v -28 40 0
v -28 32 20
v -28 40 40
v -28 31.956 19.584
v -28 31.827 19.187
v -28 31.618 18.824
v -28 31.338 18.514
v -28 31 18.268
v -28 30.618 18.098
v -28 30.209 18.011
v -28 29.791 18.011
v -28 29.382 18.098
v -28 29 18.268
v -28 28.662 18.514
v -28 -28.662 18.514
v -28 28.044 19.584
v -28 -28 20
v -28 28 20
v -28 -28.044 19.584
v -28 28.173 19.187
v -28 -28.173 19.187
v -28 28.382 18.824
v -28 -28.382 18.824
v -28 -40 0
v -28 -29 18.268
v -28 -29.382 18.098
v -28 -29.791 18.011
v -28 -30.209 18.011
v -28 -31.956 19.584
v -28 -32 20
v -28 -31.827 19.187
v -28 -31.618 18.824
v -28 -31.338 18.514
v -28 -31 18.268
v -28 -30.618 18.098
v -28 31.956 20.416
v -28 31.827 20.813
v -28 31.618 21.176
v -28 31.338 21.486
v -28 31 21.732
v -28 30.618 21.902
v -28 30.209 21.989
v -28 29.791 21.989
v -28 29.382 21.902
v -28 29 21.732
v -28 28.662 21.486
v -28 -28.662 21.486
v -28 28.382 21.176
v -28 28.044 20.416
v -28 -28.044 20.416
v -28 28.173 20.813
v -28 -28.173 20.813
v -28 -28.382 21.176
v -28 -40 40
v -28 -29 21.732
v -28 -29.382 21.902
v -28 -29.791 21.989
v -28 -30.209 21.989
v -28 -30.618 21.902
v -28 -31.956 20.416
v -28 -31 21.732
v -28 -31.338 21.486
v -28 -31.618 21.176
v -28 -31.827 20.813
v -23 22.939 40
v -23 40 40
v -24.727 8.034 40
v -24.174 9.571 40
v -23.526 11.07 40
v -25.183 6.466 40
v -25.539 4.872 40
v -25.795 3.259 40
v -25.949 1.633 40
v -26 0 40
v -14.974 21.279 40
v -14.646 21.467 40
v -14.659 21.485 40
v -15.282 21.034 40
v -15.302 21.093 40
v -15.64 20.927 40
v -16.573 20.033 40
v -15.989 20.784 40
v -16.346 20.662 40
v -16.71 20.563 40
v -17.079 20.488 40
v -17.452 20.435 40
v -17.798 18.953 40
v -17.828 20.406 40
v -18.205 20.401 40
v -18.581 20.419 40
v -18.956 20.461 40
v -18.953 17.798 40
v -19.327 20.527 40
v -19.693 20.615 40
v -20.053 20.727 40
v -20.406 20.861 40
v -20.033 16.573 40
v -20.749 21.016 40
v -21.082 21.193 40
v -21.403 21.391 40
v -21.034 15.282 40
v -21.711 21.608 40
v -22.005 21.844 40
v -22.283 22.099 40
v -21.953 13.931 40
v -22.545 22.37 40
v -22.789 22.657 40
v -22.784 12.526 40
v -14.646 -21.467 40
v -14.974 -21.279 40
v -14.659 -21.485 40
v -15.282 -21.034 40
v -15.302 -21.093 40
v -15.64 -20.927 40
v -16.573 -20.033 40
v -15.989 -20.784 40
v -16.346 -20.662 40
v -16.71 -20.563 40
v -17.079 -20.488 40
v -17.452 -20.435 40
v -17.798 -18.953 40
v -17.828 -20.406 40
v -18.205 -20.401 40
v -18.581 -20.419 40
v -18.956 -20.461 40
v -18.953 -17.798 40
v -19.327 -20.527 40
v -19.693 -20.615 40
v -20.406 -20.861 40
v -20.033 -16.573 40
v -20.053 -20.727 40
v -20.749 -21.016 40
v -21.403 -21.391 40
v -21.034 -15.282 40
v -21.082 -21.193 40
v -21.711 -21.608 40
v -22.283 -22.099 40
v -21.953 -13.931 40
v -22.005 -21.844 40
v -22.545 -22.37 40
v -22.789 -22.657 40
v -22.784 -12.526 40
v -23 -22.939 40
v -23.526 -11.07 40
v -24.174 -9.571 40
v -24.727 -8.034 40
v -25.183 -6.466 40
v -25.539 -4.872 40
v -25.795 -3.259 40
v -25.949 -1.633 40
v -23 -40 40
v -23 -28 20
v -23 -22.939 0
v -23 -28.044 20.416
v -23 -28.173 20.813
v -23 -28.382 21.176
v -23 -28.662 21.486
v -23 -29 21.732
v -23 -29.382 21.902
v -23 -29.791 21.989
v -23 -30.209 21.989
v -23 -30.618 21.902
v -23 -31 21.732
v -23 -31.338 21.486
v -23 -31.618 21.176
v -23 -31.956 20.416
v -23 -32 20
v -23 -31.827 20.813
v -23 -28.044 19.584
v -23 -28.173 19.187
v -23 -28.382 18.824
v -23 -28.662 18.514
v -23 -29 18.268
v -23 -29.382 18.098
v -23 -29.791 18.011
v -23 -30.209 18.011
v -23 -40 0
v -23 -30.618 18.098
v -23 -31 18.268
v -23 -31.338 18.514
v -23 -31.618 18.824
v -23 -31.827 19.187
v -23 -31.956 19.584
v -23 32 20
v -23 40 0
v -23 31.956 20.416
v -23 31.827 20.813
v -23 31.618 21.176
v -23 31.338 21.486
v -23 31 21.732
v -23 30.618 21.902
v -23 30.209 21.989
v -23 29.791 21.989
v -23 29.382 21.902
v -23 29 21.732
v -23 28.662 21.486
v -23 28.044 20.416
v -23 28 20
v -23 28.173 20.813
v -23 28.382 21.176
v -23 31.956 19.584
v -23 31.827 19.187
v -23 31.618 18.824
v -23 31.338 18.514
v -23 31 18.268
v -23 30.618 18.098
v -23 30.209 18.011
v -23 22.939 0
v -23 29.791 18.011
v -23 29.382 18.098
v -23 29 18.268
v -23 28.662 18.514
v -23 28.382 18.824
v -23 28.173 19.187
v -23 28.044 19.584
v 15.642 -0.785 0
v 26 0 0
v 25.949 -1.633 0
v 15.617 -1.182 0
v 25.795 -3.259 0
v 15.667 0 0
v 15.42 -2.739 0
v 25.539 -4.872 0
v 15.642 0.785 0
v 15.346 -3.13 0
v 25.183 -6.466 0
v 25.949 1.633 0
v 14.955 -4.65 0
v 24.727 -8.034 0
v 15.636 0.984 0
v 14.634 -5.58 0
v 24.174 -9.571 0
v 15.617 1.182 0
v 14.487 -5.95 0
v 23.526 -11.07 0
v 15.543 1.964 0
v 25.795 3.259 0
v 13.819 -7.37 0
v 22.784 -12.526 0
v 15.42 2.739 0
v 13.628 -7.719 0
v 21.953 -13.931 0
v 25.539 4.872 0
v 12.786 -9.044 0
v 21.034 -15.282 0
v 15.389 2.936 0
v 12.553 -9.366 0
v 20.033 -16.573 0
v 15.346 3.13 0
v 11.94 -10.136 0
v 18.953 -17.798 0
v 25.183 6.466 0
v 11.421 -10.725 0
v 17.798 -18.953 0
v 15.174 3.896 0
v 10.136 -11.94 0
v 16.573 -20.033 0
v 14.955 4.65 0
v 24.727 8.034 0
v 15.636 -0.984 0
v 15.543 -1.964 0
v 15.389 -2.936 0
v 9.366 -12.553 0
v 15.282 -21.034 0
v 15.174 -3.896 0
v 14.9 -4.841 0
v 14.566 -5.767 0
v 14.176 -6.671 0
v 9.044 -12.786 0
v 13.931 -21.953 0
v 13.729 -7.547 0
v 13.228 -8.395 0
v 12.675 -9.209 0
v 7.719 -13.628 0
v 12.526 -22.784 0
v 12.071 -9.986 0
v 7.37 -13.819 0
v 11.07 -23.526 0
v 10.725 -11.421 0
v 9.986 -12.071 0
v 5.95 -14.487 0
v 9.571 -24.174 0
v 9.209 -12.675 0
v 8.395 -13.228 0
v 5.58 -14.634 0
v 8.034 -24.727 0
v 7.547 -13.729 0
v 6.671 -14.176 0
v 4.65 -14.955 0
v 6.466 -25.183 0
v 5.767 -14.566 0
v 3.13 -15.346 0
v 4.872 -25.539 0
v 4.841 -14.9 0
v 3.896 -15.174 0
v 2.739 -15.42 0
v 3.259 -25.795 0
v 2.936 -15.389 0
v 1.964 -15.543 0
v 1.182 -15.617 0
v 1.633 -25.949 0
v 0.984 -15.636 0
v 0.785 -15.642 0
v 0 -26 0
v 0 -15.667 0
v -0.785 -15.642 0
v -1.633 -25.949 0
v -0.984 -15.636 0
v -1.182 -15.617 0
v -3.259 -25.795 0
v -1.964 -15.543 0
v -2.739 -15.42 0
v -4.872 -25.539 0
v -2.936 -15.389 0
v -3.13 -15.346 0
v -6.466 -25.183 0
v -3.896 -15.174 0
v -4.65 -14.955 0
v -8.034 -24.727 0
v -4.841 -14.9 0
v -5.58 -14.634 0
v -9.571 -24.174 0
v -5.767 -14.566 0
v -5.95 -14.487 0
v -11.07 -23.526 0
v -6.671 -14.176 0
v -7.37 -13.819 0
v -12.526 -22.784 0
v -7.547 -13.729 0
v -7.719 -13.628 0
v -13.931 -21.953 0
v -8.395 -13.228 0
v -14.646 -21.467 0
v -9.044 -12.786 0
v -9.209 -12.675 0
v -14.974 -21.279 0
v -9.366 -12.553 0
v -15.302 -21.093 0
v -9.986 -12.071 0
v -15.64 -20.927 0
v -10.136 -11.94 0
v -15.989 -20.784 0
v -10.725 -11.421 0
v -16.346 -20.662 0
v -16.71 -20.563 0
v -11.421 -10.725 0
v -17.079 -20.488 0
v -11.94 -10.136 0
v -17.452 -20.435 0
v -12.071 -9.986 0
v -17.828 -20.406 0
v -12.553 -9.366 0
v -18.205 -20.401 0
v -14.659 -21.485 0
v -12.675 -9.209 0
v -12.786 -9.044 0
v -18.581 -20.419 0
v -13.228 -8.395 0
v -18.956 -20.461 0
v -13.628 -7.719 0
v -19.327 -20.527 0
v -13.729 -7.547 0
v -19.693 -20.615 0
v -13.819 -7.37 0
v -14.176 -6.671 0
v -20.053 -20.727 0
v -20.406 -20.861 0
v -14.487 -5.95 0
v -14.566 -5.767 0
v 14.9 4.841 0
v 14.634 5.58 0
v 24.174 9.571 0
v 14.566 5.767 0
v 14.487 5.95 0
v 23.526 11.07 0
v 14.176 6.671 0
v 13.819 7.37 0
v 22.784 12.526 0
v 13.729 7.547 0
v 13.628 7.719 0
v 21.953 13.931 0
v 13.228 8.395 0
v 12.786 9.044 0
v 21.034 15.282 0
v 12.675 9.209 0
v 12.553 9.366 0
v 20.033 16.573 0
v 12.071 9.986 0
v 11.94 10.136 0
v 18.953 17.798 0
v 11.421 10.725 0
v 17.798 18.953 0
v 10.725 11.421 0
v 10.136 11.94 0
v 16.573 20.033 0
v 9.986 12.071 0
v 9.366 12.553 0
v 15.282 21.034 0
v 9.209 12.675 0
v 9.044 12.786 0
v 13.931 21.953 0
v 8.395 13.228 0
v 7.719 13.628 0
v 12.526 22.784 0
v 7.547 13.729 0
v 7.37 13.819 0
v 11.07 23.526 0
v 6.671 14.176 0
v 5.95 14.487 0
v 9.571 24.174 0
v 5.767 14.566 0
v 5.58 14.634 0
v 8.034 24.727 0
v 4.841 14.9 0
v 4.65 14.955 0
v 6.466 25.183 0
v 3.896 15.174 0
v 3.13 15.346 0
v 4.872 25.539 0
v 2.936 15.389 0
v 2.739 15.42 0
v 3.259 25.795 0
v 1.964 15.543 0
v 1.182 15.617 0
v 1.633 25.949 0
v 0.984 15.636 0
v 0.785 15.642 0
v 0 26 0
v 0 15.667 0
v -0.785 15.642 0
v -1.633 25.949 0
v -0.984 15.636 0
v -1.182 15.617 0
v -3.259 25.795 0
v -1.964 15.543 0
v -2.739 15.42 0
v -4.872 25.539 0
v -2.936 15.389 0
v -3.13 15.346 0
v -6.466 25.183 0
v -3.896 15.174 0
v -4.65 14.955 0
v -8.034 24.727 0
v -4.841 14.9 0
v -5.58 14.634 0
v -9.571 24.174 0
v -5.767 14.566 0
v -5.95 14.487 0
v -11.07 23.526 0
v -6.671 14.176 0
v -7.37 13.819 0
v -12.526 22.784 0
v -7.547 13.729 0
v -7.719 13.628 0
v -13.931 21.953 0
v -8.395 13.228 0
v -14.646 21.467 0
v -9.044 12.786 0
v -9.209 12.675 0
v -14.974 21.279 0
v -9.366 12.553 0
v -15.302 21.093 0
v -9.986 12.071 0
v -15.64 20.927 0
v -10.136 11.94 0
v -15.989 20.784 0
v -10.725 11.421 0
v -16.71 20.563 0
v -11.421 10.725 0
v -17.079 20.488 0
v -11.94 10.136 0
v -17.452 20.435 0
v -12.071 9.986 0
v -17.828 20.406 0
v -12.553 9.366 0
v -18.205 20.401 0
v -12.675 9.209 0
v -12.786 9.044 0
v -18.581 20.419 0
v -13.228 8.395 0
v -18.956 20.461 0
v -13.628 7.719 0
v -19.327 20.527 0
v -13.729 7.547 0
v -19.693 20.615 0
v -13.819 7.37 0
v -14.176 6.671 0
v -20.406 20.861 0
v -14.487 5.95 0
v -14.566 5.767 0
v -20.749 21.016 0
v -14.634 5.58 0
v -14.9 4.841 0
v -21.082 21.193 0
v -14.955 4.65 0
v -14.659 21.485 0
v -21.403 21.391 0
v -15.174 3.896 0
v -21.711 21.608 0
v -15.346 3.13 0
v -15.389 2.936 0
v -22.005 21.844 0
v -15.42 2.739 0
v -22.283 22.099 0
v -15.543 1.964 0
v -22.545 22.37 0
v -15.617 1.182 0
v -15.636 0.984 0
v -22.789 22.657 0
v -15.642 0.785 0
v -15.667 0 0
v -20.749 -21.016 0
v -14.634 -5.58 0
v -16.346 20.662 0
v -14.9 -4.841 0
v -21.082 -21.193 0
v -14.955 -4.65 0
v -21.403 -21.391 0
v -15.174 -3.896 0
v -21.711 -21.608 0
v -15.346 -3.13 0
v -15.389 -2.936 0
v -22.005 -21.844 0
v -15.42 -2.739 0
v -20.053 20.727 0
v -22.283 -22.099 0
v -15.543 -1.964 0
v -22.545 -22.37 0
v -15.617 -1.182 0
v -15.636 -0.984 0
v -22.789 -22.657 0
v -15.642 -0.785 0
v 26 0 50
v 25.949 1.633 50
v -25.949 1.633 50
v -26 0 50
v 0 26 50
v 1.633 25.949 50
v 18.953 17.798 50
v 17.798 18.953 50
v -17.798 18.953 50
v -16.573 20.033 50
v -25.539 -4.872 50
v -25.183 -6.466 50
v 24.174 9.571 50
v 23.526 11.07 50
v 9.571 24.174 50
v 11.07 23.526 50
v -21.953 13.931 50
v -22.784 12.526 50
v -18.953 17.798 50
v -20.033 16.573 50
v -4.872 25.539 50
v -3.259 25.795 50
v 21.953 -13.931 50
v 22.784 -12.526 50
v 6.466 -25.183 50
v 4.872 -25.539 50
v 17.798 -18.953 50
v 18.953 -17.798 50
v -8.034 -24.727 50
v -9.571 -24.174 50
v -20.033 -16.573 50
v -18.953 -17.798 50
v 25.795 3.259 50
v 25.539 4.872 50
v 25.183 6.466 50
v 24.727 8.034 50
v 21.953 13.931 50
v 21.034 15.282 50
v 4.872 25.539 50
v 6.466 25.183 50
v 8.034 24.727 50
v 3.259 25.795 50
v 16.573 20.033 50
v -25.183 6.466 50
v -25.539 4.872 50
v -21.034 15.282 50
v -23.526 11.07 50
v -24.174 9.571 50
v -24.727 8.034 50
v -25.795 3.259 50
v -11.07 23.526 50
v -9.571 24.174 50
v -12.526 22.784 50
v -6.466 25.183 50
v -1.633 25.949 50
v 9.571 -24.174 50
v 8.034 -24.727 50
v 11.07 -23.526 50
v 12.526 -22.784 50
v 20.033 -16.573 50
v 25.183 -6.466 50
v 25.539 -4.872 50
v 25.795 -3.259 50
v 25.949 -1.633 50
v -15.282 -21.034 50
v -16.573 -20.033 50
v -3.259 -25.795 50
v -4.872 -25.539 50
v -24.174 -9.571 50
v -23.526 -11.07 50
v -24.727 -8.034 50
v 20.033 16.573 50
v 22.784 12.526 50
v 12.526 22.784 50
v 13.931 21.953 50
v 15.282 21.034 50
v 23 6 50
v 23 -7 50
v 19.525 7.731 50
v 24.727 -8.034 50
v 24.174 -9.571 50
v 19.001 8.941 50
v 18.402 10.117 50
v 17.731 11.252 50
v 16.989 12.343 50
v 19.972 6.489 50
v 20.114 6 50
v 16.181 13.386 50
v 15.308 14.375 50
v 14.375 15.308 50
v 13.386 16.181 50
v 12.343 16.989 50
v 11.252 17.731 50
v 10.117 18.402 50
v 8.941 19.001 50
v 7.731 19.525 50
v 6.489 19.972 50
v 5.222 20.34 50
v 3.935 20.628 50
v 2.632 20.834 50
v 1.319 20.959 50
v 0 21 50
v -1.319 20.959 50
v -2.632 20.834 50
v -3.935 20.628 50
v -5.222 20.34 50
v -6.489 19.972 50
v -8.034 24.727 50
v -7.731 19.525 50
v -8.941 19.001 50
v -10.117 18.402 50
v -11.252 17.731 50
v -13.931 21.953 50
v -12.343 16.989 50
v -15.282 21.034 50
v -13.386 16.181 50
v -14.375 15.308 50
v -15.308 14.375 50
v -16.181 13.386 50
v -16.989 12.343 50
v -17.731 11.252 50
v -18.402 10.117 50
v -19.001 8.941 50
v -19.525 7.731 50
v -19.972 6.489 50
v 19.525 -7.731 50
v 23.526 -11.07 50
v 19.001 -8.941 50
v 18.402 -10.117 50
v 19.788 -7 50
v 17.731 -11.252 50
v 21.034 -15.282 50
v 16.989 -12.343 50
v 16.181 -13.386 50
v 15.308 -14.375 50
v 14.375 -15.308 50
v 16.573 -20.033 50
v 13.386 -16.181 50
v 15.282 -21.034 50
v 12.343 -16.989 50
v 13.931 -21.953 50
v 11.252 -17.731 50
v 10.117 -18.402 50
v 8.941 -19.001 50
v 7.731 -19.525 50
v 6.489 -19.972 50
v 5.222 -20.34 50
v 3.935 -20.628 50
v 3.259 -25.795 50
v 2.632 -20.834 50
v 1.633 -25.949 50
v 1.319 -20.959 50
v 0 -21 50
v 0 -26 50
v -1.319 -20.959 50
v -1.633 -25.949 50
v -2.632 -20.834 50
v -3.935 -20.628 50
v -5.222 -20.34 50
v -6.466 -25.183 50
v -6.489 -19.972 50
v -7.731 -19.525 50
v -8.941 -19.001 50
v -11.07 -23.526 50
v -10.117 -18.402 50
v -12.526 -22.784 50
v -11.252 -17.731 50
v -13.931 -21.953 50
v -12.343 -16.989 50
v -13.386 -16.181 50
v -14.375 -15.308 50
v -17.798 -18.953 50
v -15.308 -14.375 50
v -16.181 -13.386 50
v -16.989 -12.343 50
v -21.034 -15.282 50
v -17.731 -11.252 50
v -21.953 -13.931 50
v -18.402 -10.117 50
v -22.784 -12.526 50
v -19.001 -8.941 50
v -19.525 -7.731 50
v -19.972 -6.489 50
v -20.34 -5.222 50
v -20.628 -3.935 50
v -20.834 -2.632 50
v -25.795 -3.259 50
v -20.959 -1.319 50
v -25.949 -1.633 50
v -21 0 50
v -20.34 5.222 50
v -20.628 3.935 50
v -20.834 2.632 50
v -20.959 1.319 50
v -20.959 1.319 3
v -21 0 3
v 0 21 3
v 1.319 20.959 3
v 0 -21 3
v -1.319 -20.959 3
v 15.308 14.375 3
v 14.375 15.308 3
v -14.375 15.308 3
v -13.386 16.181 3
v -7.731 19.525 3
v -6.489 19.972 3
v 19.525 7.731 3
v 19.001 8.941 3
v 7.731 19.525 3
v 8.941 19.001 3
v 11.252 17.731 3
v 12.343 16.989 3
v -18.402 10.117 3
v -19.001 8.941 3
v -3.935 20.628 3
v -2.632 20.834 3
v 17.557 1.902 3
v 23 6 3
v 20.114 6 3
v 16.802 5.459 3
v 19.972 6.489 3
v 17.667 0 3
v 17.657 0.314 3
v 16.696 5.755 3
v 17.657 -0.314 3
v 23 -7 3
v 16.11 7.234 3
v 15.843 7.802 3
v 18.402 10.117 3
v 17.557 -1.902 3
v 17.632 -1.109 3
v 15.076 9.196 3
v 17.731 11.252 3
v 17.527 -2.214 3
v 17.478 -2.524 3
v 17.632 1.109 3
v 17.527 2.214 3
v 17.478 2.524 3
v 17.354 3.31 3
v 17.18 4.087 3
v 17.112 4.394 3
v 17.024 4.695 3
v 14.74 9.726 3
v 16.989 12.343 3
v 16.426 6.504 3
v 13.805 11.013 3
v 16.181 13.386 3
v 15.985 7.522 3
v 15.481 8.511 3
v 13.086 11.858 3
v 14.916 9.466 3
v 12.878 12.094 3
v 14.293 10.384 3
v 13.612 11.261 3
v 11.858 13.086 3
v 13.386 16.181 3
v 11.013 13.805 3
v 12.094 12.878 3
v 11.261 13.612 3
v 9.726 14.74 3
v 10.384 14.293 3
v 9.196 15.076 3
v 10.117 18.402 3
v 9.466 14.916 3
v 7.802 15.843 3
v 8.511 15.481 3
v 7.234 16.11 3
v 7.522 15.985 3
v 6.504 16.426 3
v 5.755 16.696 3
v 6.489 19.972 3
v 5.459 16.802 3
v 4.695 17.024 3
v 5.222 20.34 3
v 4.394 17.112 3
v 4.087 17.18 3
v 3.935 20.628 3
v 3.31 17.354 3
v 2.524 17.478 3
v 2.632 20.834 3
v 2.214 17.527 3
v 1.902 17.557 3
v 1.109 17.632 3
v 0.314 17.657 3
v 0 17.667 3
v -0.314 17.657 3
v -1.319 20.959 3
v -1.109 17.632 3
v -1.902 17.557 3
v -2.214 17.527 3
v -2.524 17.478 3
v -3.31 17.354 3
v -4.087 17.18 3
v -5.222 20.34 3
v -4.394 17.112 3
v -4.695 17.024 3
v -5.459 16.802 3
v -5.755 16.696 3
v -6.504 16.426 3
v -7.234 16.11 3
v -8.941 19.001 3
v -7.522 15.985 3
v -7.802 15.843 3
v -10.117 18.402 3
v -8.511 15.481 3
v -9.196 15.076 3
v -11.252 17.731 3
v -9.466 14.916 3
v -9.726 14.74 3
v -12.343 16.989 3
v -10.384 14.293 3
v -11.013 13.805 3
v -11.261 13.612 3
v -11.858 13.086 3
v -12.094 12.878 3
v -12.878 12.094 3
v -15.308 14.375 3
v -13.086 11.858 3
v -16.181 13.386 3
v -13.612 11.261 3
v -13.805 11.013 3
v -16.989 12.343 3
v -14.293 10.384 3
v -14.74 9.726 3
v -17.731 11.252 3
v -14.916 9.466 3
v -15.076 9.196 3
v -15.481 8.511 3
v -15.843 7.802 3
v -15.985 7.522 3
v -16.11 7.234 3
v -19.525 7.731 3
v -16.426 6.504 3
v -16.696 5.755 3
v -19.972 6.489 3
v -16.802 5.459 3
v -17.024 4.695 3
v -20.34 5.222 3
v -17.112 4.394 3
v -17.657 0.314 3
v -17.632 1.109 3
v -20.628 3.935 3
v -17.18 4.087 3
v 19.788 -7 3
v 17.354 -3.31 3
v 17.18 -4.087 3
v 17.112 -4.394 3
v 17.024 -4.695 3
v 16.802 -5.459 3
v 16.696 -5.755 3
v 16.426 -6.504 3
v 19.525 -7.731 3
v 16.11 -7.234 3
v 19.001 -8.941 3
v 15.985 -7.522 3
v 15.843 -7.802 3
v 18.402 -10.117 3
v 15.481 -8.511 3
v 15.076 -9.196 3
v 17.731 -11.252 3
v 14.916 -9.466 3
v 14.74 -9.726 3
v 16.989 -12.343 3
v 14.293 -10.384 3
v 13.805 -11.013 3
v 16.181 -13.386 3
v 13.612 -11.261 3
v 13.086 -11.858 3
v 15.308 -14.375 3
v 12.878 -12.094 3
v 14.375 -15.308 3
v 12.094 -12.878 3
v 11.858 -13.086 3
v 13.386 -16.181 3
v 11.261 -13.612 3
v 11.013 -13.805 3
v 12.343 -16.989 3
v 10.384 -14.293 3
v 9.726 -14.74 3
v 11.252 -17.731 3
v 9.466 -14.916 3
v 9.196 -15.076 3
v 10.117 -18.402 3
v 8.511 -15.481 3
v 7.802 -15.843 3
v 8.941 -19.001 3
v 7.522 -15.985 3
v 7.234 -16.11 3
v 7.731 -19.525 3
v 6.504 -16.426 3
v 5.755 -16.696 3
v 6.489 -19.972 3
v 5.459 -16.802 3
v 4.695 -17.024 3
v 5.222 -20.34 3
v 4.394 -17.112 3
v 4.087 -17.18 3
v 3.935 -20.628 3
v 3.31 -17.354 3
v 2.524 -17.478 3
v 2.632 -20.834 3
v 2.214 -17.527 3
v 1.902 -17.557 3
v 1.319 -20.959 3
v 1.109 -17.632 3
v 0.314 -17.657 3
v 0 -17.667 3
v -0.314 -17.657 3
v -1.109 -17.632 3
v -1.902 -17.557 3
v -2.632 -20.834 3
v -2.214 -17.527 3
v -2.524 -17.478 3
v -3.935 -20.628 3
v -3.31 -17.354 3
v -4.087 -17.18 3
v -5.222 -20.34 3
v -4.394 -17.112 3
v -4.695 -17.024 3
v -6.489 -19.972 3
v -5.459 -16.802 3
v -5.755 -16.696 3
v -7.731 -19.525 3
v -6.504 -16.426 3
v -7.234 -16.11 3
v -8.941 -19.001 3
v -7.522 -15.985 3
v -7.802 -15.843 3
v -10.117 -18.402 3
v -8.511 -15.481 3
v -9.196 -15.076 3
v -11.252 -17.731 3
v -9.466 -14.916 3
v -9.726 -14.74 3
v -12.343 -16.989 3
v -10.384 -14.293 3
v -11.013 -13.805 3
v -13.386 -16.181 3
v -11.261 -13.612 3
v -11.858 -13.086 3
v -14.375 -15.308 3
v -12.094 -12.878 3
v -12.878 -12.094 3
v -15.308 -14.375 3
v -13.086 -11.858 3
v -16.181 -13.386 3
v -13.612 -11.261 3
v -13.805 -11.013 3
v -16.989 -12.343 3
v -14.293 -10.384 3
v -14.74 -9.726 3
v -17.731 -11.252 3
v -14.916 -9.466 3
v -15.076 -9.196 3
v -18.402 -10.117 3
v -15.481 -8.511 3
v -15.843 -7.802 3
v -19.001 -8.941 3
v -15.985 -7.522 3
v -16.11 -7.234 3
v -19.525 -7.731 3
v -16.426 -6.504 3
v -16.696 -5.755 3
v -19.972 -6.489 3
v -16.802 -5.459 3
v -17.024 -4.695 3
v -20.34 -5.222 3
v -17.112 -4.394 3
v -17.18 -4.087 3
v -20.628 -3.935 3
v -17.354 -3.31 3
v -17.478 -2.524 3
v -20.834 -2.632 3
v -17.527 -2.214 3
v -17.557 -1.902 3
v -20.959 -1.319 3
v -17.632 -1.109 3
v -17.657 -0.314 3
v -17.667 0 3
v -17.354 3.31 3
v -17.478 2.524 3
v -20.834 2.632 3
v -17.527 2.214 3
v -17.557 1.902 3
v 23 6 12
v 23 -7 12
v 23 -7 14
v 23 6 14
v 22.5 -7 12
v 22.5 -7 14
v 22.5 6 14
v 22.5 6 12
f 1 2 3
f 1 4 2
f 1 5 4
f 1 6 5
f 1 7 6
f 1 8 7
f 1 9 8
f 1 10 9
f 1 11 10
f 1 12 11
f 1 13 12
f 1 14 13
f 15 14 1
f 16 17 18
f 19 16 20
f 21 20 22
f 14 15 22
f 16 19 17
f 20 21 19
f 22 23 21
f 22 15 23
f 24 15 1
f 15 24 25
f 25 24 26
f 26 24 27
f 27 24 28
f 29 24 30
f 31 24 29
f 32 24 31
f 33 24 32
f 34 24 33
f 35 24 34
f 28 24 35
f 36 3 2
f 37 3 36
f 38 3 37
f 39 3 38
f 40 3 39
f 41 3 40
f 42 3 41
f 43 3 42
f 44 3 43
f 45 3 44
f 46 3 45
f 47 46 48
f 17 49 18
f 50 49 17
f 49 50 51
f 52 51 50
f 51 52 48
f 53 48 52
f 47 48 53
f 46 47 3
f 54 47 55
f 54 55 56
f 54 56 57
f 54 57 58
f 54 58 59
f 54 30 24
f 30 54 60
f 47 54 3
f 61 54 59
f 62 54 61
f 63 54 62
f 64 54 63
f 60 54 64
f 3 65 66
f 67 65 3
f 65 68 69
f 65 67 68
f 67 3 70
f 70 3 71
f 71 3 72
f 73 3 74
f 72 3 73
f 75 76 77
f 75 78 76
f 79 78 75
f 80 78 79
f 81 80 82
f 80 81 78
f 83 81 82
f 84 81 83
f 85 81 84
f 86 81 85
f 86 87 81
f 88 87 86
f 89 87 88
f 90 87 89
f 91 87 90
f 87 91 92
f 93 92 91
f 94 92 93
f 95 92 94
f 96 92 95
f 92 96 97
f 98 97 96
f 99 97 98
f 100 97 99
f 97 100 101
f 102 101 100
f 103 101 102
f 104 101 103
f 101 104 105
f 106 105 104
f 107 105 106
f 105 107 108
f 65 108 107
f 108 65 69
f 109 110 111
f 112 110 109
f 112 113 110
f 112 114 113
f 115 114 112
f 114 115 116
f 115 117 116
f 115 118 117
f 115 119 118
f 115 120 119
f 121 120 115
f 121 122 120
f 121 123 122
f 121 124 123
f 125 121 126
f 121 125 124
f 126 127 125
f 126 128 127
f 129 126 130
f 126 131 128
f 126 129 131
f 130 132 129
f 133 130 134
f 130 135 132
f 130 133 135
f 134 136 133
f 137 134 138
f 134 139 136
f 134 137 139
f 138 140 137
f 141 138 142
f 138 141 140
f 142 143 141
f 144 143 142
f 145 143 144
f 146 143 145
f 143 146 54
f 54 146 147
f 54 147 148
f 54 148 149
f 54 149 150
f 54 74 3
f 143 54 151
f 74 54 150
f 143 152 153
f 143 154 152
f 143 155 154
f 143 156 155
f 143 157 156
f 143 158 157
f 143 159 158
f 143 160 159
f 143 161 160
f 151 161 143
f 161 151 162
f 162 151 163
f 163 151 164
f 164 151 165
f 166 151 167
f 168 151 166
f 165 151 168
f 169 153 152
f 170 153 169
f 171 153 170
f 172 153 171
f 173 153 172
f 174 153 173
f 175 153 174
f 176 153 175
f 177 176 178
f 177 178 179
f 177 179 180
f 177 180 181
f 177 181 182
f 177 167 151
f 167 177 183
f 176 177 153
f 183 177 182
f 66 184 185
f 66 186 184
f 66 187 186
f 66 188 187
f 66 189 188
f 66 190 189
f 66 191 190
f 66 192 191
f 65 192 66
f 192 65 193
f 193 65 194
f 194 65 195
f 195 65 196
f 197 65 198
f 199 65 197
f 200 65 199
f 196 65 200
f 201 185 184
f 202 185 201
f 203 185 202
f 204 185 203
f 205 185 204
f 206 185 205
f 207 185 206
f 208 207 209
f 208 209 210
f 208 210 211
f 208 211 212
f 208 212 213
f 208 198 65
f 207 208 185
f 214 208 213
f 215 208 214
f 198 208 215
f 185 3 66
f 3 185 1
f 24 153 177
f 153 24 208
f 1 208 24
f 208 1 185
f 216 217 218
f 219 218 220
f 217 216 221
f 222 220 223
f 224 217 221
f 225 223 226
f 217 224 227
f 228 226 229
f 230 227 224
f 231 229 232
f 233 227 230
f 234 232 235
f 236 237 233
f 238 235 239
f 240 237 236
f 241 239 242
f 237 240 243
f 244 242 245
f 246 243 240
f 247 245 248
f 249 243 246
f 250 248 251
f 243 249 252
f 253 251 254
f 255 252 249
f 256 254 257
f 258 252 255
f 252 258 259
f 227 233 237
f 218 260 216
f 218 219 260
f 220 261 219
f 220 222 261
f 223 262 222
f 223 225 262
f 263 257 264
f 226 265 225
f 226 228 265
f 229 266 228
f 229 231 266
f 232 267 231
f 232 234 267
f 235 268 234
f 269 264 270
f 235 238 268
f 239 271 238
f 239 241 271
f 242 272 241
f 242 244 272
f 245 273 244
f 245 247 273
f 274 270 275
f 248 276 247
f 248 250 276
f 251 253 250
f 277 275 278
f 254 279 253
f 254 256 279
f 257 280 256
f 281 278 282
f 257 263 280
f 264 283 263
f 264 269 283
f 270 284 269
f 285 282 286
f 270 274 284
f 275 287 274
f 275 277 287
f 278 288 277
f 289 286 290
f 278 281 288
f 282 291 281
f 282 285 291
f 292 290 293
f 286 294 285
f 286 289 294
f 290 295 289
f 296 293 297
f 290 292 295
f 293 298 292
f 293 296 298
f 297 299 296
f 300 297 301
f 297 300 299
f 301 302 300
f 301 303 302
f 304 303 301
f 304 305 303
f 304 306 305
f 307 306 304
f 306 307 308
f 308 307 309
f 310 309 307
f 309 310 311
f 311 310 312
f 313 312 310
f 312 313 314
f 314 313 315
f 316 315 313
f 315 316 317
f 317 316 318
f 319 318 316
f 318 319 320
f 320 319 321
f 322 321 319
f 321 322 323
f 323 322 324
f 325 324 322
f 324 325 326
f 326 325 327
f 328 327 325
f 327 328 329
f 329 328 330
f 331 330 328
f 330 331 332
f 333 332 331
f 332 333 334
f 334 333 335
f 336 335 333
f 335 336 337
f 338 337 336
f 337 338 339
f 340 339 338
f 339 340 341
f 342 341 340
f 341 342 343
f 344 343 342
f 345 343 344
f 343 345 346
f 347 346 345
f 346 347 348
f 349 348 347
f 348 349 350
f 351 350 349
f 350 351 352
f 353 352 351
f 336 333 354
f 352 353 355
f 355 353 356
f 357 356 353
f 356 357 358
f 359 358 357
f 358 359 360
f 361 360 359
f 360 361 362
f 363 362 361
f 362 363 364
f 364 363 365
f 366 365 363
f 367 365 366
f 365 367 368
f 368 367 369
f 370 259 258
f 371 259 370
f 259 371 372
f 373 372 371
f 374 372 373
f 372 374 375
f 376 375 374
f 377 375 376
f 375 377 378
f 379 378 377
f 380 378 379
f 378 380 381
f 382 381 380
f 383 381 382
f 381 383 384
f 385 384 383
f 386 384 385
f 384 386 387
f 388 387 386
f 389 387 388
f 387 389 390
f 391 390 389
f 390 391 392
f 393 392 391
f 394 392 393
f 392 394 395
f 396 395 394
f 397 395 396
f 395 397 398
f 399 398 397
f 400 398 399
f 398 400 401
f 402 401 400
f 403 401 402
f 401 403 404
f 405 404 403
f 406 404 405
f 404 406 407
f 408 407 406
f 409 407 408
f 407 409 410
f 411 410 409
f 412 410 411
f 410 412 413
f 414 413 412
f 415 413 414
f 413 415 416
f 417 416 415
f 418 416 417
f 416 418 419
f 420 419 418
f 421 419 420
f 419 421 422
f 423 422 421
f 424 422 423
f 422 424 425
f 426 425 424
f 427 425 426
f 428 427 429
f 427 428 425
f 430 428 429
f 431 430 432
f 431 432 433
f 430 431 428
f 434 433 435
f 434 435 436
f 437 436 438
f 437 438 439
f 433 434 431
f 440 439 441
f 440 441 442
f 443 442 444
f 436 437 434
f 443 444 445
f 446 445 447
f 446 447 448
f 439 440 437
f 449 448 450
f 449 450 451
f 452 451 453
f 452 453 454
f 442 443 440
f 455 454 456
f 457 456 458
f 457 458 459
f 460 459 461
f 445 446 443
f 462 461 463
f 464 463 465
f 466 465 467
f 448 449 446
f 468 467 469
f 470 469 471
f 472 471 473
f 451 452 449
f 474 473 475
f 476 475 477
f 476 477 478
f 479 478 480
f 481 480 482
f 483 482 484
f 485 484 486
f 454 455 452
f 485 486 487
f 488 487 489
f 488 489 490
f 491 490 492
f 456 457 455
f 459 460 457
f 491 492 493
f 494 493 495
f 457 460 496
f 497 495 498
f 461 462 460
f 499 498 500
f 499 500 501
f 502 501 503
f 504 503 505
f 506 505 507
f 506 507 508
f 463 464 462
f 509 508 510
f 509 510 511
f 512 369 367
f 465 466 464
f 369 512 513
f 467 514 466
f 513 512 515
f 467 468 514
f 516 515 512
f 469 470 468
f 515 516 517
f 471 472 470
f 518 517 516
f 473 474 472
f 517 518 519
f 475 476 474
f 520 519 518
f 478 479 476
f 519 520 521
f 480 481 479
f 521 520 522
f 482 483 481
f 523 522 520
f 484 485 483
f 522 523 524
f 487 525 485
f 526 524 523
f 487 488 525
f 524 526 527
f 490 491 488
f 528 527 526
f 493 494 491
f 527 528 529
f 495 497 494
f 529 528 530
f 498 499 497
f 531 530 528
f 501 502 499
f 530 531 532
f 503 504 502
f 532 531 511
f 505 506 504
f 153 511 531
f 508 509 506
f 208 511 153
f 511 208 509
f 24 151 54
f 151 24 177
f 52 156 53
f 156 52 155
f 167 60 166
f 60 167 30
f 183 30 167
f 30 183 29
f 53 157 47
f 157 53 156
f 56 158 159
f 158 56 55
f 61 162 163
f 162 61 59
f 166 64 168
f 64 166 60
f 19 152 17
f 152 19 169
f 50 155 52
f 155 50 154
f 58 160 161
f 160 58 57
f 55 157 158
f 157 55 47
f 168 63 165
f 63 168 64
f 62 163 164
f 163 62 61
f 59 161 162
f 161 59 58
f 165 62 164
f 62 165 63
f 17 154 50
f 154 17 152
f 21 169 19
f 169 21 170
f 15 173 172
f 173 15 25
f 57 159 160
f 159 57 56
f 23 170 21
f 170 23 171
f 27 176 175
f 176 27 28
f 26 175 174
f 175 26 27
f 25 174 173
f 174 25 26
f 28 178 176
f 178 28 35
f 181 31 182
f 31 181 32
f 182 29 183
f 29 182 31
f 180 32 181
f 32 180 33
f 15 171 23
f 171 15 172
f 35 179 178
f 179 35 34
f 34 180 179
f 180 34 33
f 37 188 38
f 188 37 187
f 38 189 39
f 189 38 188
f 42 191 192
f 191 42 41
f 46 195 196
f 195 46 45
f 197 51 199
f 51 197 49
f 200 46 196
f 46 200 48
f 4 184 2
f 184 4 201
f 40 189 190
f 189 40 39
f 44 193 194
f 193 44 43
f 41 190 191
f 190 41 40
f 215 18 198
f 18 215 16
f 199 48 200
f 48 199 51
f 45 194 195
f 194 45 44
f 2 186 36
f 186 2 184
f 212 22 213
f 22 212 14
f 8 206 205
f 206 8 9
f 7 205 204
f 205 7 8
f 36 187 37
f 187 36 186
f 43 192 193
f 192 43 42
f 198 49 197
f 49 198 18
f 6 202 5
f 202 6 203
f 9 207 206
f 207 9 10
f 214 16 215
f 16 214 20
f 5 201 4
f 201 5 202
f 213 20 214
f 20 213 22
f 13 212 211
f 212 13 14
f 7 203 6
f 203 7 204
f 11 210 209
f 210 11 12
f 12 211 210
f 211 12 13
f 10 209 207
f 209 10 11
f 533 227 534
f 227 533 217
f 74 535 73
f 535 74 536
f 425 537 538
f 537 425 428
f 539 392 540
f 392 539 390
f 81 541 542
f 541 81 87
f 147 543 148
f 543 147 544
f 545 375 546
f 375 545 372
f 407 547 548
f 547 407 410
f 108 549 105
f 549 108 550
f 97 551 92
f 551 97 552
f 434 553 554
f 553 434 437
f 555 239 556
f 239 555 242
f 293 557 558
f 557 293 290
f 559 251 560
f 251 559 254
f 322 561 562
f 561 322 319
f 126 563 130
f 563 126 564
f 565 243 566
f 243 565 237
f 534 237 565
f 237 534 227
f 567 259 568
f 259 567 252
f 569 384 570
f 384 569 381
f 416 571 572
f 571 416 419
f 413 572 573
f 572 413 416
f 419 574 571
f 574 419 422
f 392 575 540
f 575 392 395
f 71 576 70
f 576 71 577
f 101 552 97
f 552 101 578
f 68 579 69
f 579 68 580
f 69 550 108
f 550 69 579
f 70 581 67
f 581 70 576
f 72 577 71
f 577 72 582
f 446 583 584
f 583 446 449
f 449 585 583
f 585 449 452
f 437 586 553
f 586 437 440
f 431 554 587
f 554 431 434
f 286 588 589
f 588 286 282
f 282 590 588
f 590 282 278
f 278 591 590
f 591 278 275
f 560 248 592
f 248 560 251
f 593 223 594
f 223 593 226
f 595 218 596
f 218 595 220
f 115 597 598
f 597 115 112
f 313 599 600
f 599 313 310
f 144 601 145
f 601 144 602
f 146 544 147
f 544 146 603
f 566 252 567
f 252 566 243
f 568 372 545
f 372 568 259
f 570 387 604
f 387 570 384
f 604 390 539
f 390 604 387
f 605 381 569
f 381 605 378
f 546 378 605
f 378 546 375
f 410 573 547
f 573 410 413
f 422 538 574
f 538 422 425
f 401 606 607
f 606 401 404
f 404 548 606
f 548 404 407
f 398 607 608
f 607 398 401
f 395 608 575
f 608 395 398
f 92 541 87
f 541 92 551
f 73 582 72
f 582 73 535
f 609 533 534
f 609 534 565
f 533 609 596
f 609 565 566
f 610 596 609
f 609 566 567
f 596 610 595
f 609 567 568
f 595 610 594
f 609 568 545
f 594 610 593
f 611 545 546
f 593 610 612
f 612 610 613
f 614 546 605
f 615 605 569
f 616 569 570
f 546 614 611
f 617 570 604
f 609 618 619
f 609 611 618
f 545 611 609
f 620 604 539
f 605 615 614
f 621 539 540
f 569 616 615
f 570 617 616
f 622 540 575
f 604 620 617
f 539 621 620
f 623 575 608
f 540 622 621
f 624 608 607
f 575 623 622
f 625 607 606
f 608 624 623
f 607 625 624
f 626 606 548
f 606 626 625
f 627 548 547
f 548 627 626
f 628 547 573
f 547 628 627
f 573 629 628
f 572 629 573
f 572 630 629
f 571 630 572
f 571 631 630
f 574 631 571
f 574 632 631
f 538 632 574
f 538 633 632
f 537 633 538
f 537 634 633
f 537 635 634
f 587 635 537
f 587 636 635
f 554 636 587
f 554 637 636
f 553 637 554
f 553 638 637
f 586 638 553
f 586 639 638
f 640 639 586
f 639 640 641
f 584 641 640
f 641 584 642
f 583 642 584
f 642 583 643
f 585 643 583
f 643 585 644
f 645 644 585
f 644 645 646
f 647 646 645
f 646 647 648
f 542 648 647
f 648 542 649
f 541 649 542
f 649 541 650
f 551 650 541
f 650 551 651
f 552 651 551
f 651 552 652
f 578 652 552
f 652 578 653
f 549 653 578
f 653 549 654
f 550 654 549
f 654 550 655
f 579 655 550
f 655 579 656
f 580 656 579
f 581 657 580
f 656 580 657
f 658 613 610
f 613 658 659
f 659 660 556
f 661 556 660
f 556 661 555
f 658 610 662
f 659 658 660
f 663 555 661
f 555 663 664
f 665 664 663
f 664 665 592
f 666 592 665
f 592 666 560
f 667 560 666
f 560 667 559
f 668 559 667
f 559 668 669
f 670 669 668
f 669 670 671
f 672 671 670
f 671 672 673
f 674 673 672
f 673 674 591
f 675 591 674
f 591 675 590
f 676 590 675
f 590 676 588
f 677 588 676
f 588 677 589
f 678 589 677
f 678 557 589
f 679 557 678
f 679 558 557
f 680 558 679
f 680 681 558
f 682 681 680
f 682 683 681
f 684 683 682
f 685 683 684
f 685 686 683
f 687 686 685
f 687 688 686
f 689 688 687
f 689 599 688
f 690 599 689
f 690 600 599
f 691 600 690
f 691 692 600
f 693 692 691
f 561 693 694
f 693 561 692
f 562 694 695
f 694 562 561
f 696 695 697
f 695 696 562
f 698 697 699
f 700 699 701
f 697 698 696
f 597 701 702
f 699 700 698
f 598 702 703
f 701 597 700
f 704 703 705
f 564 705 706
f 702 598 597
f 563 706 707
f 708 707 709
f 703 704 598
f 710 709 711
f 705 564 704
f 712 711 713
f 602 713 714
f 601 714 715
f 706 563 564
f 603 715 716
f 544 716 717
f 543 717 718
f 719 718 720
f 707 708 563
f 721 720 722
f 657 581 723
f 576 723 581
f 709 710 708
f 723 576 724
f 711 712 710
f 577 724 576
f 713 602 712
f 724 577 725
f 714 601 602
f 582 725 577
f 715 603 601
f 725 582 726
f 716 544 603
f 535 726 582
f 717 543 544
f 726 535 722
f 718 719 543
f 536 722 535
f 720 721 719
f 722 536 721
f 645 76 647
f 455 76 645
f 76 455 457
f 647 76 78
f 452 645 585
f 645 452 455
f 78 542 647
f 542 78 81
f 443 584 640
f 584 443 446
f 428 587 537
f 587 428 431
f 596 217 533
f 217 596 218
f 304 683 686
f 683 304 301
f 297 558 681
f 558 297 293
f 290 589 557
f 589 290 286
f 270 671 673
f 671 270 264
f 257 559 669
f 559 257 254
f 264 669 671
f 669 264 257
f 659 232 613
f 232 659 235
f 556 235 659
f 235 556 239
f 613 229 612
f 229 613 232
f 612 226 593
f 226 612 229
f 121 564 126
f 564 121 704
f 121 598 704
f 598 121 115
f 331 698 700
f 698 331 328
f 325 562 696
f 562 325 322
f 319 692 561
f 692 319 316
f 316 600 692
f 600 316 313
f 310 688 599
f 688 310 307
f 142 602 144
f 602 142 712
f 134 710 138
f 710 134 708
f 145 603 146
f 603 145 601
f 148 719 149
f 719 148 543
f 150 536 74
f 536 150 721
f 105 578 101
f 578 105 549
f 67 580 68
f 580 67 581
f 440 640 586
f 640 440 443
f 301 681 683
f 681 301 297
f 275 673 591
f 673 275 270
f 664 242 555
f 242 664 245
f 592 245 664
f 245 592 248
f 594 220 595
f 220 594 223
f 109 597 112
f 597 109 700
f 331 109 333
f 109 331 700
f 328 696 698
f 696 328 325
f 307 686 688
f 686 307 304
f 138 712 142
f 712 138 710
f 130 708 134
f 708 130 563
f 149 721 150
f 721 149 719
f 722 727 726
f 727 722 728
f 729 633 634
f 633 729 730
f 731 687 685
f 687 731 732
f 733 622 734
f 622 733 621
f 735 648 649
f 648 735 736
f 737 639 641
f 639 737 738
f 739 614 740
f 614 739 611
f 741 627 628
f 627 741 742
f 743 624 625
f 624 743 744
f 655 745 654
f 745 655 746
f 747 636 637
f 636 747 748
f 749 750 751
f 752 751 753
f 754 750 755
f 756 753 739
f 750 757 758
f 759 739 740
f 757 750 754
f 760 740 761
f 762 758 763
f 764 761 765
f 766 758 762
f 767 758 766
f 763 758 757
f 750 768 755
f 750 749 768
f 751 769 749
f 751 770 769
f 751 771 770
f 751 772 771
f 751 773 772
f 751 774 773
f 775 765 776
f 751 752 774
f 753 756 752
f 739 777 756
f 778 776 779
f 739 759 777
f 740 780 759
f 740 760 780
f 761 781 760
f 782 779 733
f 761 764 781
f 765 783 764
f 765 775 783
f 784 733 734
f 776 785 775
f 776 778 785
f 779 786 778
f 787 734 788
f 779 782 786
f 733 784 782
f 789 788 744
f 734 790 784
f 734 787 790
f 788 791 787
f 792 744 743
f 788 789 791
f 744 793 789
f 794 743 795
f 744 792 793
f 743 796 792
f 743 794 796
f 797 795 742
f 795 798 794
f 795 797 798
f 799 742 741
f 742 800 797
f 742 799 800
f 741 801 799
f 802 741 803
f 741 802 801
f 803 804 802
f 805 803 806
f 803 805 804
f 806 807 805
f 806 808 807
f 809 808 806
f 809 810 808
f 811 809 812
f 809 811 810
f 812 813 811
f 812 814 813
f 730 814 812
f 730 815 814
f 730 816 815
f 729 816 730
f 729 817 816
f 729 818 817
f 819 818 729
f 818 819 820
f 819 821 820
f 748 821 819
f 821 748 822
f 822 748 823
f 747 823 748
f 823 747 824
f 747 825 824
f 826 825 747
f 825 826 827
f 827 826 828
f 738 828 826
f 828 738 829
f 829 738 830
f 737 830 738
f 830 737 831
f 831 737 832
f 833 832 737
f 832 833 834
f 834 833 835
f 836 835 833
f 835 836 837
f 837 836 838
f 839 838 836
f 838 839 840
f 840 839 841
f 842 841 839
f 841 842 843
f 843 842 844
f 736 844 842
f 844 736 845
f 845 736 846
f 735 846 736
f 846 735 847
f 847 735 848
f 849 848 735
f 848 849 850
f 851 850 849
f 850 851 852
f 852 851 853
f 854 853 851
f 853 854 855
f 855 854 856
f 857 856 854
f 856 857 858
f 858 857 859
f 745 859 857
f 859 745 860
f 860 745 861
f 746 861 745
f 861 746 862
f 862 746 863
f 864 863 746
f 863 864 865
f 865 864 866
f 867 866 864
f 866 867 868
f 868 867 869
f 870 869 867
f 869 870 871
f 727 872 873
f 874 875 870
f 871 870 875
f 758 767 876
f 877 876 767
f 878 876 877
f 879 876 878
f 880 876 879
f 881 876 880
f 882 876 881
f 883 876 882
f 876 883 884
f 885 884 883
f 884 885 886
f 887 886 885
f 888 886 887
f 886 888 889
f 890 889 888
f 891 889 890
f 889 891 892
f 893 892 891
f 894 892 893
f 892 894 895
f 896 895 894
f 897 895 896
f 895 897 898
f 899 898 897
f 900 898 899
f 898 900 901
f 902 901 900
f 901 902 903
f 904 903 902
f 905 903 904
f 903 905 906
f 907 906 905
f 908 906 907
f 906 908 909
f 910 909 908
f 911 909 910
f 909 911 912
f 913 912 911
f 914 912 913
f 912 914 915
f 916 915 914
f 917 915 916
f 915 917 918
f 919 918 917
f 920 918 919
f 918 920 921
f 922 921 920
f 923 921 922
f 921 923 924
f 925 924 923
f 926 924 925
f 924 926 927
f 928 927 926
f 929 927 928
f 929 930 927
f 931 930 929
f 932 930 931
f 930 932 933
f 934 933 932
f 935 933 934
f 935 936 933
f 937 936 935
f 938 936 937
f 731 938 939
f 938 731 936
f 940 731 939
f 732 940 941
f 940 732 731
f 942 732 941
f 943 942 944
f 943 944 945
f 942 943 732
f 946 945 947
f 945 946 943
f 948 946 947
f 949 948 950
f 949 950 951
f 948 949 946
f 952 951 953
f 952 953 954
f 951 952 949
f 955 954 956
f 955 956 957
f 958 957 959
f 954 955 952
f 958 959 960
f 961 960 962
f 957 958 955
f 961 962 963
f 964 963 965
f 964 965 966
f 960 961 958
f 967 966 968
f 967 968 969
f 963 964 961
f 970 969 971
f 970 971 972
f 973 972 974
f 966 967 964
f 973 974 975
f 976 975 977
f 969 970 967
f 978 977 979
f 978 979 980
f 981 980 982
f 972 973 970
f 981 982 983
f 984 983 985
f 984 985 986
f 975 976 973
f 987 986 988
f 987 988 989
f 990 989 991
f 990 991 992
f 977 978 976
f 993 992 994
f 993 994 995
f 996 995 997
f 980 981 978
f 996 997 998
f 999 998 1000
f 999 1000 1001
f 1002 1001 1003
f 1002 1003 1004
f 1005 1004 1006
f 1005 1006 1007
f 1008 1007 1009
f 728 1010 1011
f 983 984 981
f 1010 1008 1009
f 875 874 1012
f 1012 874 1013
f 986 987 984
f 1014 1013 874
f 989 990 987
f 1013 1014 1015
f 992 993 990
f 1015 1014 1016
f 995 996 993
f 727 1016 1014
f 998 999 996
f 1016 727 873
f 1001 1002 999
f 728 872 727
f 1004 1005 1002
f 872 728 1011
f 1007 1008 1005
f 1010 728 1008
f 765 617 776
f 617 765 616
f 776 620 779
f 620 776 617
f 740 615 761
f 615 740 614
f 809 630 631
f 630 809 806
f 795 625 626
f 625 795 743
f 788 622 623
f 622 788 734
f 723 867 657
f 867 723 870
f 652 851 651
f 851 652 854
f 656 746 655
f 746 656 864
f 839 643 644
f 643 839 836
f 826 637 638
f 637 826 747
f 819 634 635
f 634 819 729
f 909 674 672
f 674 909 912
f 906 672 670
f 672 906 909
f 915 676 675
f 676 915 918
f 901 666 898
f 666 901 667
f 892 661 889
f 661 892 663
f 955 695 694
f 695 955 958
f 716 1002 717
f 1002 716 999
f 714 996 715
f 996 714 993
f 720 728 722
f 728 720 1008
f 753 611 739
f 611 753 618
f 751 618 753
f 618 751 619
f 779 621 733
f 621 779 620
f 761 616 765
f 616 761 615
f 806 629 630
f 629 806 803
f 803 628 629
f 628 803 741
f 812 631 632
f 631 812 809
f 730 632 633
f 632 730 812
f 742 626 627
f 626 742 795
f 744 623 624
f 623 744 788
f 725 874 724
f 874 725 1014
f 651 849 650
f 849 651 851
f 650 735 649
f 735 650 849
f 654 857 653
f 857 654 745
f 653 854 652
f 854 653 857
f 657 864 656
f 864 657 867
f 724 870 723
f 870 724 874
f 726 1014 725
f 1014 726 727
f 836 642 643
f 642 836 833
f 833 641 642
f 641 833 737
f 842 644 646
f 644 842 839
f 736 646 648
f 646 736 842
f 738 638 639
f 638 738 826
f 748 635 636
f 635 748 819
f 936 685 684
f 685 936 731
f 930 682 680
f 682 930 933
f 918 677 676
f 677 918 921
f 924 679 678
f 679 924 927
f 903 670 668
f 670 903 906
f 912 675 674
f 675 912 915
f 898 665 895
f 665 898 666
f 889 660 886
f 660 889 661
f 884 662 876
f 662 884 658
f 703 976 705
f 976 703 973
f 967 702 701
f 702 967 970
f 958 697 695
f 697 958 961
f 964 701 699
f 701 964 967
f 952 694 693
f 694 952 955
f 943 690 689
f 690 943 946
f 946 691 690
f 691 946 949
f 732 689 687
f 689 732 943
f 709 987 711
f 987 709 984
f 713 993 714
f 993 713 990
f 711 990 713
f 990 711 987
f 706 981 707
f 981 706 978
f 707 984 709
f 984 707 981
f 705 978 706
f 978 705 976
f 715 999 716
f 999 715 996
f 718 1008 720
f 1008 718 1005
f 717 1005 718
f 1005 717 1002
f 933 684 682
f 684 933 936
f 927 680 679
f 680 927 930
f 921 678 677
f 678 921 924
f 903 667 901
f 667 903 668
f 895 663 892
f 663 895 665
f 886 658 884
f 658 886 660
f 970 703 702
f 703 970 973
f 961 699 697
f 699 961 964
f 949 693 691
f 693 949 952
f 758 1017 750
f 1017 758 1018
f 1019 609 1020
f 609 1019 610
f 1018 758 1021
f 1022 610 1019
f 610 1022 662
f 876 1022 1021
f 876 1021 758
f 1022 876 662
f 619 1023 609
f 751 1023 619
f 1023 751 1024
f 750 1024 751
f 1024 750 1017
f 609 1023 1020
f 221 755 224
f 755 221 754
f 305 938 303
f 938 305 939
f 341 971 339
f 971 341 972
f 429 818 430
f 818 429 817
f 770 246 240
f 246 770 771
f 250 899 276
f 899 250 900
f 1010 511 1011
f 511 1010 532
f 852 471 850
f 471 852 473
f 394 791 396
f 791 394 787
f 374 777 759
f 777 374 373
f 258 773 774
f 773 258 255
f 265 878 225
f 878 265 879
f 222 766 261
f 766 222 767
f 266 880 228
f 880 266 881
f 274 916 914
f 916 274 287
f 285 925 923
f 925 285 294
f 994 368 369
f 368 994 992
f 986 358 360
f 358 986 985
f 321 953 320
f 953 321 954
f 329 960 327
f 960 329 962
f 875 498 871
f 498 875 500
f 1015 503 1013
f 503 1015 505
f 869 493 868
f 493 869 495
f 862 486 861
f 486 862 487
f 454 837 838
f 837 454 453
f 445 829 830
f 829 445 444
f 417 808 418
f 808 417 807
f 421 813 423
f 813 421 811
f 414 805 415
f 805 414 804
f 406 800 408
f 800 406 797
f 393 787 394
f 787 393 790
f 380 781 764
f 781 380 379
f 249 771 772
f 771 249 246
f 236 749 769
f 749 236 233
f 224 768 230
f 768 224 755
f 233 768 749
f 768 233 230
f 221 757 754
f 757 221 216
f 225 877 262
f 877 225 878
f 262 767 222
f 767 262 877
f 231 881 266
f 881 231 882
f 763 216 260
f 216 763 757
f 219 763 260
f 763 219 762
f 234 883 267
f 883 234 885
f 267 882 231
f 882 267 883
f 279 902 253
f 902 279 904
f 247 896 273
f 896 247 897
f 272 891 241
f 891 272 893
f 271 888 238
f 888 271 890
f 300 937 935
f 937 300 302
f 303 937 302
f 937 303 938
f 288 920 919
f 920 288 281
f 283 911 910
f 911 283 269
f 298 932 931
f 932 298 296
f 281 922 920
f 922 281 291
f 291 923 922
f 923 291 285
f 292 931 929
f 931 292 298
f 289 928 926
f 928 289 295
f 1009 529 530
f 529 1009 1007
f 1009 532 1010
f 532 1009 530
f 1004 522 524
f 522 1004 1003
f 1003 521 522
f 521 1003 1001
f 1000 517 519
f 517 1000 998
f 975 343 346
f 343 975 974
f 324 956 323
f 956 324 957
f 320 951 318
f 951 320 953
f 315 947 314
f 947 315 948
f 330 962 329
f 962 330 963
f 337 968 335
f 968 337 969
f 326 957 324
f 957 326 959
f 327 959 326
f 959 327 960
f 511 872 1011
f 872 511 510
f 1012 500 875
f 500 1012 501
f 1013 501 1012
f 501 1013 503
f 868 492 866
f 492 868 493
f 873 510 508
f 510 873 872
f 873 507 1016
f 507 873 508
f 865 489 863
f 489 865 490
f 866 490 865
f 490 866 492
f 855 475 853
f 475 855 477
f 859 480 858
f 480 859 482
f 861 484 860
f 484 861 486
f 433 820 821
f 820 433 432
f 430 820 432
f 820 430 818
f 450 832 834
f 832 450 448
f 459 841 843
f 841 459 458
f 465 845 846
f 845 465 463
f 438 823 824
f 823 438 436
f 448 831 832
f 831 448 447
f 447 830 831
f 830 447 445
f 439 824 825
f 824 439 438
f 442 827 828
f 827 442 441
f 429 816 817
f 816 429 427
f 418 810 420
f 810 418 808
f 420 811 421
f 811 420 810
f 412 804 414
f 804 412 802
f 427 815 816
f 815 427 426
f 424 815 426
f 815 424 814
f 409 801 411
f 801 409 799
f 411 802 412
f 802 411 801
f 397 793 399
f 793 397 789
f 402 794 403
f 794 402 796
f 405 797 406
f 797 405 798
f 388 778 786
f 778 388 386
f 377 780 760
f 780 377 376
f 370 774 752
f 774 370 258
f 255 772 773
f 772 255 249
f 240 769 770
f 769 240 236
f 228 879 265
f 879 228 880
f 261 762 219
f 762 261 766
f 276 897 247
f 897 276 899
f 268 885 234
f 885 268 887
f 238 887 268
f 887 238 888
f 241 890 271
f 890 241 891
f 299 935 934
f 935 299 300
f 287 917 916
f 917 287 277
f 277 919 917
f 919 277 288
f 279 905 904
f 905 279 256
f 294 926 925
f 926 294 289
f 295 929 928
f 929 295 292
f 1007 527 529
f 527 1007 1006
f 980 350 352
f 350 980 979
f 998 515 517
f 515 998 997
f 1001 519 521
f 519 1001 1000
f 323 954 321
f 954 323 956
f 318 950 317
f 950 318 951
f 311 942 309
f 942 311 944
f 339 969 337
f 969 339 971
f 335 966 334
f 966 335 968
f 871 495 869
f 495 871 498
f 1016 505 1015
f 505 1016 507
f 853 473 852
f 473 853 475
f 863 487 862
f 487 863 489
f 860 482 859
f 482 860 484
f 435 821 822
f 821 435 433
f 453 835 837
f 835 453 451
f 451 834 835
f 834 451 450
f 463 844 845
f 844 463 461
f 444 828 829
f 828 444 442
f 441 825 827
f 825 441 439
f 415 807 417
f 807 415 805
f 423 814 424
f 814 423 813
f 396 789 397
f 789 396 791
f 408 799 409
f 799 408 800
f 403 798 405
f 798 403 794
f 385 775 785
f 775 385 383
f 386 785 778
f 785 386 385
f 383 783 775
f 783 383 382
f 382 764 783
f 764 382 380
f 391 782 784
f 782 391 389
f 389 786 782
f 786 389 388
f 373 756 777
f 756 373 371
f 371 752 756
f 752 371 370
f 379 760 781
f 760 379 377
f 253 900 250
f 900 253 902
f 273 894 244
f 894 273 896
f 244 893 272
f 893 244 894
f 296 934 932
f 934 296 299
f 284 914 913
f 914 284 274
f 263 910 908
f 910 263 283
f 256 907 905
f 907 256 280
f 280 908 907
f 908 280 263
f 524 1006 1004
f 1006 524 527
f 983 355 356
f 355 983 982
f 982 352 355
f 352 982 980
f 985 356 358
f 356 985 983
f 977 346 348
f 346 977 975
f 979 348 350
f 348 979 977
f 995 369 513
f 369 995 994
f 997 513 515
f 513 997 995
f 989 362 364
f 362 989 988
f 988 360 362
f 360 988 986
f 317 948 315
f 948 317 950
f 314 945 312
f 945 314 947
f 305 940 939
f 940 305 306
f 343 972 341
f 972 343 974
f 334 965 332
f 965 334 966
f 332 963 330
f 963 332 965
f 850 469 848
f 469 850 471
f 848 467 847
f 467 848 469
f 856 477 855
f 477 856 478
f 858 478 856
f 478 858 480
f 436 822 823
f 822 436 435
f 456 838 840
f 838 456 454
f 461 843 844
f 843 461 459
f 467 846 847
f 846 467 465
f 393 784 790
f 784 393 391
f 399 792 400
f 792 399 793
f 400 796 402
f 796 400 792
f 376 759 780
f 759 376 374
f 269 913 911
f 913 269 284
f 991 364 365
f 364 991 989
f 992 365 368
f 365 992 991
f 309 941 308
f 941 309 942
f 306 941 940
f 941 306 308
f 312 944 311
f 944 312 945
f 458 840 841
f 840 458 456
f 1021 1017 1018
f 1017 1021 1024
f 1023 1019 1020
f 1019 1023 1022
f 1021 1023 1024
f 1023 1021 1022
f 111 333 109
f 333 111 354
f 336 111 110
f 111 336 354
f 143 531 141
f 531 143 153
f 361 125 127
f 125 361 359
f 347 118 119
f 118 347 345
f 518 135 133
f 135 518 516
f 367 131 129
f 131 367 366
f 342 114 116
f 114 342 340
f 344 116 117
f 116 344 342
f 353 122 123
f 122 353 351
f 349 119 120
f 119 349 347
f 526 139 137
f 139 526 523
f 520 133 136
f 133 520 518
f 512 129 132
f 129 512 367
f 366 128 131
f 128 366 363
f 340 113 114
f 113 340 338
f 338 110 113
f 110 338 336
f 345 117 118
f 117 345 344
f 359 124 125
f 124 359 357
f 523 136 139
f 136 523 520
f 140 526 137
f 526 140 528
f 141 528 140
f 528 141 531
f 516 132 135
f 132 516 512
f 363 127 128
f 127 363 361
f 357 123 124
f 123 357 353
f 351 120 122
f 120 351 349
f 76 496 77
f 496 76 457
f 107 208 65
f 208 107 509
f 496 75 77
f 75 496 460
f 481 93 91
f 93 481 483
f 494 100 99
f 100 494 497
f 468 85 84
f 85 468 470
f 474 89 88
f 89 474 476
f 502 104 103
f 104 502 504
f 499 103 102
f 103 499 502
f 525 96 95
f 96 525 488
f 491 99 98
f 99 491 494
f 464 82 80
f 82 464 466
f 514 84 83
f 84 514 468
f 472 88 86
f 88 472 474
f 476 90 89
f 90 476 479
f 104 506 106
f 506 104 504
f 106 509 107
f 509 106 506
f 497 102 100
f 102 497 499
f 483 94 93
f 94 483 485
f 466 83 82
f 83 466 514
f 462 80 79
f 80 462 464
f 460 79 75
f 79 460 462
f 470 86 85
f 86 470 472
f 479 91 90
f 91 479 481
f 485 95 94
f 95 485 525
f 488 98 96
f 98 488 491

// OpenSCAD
$fs = 0.01;

difference(){
difference(){
difference(){
    $fn = 100;
    cylinder(r = 26, h = 50);
    
    translate([0,0,3])
    cylinder(r = 21, h = 48);

    }
 
    translate([10,-7,3])
    cube([13,13,48]);

}
    $fn = 100;
        translate([0,0,-1])
cylinder(h = 6, r1 = 15, r2 = 19);
}

translate([0,0,12])
difference(){
        $fn = 100;
    cylinder(r = 25, h = 2);
    
    translate([0,0,-1])
    cylinder(r = 21, h = 10);
        
    
    translate([9.5,-7,-.5])
    cube([13,13,3]);
    
    
    }
    
    
   difference(){ 
  translate([-28,-40,0])
    cube([5,80,40]);
 
 translate([-30,-30,20])     
 rotate([90,0,90])      
 cylinder(r = 2, h = 10);  
 translate([-30,30,20])     
 rotate([90,0,90])      
 cylinder(r = 2, h = 10);      
       
       
       
   }
   translate([-18.1,-26.4,0])
   rotate([0,0,55])
 difference(){
         $fn = 100;
     cube([7,7,40])
     
    cylinder(r = 12, h = 40);
    
    translate([0,0,-1])
    cylinder(r = 6, h = 48);
    }
   
    
       translate([-18.1,26.4,0])
   rotate([0,0,215])
 difference(){
         $fn = 100;
     cube([7,7,40])
    cylinder(r = 12, h = 40);
    
    translate([0,0,-1])
    cylinder(r = 6, h = 48);
    }
   

  translate([-22,-21,0])
   rotate([0,0,50])
    cube([7.5,7.5,40]);
  translate([-23,-22,0])
   rotate([0,0,50])
    cube([6,6,40]);
    
    
    
 
  translate([-22,11,0])
   rotate([0,0,50])
    cube([7.5,7.5,40]);
  translate([-23,14,0])
   rotate([0,0,50])
    cube([6,6,40]);
